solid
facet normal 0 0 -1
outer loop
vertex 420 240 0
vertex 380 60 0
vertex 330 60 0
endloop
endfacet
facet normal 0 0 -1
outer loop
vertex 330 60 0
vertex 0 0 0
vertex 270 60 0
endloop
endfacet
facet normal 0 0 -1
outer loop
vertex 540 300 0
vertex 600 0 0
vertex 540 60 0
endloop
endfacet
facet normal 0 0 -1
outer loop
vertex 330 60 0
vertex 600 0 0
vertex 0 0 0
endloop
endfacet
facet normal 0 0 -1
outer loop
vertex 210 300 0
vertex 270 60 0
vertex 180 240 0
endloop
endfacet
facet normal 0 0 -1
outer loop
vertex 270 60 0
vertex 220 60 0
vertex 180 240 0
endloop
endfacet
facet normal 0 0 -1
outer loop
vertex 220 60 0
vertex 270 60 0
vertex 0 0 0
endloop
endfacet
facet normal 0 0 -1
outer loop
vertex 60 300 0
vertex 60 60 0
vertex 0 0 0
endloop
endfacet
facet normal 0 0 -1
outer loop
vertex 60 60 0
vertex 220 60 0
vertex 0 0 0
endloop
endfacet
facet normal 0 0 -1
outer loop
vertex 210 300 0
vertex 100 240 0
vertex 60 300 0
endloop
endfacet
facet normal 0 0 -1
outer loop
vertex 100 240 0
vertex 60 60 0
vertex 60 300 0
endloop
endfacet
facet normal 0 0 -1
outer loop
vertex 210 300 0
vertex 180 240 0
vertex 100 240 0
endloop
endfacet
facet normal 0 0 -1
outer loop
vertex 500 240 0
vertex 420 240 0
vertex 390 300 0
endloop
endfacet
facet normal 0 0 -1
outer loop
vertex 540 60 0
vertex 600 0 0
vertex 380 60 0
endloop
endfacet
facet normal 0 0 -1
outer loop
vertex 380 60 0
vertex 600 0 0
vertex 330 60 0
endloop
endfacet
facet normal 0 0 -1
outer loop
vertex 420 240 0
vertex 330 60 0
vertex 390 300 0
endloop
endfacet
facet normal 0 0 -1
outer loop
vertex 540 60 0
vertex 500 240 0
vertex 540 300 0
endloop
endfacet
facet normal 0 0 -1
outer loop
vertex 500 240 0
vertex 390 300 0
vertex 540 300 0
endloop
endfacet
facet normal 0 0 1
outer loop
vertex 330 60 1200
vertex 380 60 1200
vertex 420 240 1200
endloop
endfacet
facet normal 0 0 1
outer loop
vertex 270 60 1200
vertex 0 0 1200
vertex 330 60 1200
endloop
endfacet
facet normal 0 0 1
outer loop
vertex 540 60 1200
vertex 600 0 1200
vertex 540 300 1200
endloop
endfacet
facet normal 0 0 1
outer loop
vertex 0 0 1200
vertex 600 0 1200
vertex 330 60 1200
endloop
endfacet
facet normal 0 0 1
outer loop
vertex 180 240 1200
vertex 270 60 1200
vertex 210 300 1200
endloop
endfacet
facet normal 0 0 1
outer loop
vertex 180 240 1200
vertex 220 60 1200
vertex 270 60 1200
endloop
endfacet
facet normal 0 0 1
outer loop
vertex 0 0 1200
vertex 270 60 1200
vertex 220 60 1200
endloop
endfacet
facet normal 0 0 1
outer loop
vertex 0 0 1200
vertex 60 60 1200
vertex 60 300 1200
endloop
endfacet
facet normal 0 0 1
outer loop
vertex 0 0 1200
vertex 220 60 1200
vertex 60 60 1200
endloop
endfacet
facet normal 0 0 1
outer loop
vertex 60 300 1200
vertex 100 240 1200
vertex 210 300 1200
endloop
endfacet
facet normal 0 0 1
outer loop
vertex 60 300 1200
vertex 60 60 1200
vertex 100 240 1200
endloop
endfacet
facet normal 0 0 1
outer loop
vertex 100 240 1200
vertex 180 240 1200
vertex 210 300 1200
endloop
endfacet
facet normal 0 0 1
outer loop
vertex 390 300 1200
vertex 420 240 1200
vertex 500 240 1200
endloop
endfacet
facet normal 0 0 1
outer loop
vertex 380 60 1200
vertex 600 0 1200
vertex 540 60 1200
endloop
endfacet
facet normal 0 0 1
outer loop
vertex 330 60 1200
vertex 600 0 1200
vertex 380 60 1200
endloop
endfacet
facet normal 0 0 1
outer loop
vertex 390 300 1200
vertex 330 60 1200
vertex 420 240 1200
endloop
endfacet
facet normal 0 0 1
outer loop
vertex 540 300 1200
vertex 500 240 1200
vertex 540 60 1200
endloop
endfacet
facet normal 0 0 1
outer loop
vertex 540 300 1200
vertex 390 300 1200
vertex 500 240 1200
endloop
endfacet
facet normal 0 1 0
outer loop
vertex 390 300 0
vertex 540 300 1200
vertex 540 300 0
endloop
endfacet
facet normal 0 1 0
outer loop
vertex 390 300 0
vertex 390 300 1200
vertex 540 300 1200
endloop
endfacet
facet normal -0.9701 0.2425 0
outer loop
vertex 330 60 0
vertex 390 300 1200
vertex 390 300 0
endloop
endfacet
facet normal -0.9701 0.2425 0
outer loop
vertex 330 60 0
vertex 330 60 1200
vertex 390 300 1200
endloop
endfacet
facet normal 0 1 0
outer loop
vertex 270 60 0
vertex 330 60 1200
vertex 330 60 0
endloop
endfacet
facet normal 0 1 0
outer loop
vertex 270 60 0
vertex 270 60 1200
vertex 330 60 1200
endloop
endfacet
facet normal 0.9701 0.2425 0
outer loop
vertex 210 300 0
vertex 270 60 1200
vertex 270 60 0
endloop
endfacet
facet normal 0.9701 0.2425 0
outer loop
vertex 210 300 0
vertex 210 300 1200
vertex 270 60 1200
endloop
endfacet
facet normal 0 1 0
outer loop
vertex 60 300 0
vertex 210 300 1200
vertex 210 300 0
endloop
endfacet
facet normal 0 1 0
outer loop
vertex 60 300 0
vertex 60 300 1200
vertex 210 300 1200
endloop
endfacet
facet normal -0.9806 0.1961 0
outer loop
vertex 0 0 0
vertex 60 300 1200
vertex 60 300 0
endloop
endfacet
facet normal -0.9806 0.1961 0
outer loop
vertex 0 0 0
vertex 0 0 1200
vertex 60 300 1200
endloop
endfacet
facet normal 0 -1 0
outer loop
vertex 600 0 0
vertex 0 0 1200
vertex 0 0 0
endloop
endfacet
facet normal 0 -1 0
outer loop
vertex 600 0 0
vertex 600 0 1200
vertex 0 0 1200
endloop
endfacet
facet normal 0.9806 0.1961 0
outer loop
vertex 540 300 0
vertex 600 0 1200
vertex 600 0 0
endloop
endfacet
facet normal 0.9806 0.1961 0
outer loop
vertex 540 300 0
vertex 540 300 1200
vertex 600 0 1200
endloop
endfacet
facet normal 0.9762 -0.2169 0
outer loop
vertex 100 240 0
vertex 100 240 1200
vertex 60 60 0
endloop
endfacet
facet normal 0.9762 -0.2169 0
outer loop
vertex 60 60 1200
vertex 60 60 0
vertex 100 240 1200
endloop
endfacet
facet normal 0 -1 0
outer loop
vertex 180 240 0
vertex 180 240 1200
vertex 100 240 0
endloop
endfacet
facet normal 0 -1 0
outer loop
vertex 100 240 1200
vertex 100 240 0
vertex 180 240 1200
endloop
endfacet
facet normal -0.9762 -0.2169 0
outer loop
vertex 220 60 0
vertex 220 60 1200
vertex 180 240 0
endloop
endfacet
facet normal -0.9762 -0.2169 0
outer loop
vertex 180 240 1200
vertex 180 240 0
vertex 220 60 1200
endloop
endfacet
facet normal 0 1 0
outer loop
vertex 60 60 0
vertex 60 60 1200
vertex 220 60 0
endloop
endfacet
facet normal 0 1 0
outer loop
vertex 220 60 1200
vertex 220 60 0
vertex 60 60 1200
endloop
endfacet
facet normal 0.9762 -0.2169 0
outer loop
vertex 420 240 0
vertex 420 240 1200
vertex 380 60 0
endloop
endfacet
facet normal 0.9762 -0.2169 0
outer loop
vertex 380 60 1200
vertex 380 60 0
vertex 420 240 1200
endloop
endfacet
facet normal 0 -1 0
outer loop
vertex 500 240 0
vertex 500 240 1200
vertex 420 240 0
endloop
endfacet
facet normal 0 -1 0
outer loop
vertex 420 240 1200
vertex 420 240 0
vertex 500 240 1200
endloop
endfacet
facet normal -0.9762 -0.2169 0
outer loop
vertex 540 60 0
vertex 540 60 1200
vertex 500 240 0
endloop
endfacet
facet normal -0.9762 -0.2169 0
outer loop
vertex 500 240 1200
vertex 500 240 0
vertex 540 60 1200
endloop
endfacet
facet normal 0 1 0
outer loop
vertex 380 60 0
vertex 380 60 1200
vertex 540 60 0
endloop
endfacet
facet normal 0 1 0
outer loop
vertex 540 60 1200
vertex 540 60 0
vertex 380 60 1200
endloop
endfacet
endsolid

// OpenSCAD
color([.3,.3,.3])
scale(2)
    linear_extrude(height = 600, center = false, convexity = 10, twist = 0)

polygon(points=[[0,0],[30,150],[105,150],[135,30],[165,30],[195,150],[270,150],[300,0], 
[30,30],[50,120],[90,120],[110,30],
[190,30],[210,120],[250,120],[270,30]

],

paths=[[0,1,2,3,4,5,6,7],[8,9,10,11],[12,13,14,15]]
);
